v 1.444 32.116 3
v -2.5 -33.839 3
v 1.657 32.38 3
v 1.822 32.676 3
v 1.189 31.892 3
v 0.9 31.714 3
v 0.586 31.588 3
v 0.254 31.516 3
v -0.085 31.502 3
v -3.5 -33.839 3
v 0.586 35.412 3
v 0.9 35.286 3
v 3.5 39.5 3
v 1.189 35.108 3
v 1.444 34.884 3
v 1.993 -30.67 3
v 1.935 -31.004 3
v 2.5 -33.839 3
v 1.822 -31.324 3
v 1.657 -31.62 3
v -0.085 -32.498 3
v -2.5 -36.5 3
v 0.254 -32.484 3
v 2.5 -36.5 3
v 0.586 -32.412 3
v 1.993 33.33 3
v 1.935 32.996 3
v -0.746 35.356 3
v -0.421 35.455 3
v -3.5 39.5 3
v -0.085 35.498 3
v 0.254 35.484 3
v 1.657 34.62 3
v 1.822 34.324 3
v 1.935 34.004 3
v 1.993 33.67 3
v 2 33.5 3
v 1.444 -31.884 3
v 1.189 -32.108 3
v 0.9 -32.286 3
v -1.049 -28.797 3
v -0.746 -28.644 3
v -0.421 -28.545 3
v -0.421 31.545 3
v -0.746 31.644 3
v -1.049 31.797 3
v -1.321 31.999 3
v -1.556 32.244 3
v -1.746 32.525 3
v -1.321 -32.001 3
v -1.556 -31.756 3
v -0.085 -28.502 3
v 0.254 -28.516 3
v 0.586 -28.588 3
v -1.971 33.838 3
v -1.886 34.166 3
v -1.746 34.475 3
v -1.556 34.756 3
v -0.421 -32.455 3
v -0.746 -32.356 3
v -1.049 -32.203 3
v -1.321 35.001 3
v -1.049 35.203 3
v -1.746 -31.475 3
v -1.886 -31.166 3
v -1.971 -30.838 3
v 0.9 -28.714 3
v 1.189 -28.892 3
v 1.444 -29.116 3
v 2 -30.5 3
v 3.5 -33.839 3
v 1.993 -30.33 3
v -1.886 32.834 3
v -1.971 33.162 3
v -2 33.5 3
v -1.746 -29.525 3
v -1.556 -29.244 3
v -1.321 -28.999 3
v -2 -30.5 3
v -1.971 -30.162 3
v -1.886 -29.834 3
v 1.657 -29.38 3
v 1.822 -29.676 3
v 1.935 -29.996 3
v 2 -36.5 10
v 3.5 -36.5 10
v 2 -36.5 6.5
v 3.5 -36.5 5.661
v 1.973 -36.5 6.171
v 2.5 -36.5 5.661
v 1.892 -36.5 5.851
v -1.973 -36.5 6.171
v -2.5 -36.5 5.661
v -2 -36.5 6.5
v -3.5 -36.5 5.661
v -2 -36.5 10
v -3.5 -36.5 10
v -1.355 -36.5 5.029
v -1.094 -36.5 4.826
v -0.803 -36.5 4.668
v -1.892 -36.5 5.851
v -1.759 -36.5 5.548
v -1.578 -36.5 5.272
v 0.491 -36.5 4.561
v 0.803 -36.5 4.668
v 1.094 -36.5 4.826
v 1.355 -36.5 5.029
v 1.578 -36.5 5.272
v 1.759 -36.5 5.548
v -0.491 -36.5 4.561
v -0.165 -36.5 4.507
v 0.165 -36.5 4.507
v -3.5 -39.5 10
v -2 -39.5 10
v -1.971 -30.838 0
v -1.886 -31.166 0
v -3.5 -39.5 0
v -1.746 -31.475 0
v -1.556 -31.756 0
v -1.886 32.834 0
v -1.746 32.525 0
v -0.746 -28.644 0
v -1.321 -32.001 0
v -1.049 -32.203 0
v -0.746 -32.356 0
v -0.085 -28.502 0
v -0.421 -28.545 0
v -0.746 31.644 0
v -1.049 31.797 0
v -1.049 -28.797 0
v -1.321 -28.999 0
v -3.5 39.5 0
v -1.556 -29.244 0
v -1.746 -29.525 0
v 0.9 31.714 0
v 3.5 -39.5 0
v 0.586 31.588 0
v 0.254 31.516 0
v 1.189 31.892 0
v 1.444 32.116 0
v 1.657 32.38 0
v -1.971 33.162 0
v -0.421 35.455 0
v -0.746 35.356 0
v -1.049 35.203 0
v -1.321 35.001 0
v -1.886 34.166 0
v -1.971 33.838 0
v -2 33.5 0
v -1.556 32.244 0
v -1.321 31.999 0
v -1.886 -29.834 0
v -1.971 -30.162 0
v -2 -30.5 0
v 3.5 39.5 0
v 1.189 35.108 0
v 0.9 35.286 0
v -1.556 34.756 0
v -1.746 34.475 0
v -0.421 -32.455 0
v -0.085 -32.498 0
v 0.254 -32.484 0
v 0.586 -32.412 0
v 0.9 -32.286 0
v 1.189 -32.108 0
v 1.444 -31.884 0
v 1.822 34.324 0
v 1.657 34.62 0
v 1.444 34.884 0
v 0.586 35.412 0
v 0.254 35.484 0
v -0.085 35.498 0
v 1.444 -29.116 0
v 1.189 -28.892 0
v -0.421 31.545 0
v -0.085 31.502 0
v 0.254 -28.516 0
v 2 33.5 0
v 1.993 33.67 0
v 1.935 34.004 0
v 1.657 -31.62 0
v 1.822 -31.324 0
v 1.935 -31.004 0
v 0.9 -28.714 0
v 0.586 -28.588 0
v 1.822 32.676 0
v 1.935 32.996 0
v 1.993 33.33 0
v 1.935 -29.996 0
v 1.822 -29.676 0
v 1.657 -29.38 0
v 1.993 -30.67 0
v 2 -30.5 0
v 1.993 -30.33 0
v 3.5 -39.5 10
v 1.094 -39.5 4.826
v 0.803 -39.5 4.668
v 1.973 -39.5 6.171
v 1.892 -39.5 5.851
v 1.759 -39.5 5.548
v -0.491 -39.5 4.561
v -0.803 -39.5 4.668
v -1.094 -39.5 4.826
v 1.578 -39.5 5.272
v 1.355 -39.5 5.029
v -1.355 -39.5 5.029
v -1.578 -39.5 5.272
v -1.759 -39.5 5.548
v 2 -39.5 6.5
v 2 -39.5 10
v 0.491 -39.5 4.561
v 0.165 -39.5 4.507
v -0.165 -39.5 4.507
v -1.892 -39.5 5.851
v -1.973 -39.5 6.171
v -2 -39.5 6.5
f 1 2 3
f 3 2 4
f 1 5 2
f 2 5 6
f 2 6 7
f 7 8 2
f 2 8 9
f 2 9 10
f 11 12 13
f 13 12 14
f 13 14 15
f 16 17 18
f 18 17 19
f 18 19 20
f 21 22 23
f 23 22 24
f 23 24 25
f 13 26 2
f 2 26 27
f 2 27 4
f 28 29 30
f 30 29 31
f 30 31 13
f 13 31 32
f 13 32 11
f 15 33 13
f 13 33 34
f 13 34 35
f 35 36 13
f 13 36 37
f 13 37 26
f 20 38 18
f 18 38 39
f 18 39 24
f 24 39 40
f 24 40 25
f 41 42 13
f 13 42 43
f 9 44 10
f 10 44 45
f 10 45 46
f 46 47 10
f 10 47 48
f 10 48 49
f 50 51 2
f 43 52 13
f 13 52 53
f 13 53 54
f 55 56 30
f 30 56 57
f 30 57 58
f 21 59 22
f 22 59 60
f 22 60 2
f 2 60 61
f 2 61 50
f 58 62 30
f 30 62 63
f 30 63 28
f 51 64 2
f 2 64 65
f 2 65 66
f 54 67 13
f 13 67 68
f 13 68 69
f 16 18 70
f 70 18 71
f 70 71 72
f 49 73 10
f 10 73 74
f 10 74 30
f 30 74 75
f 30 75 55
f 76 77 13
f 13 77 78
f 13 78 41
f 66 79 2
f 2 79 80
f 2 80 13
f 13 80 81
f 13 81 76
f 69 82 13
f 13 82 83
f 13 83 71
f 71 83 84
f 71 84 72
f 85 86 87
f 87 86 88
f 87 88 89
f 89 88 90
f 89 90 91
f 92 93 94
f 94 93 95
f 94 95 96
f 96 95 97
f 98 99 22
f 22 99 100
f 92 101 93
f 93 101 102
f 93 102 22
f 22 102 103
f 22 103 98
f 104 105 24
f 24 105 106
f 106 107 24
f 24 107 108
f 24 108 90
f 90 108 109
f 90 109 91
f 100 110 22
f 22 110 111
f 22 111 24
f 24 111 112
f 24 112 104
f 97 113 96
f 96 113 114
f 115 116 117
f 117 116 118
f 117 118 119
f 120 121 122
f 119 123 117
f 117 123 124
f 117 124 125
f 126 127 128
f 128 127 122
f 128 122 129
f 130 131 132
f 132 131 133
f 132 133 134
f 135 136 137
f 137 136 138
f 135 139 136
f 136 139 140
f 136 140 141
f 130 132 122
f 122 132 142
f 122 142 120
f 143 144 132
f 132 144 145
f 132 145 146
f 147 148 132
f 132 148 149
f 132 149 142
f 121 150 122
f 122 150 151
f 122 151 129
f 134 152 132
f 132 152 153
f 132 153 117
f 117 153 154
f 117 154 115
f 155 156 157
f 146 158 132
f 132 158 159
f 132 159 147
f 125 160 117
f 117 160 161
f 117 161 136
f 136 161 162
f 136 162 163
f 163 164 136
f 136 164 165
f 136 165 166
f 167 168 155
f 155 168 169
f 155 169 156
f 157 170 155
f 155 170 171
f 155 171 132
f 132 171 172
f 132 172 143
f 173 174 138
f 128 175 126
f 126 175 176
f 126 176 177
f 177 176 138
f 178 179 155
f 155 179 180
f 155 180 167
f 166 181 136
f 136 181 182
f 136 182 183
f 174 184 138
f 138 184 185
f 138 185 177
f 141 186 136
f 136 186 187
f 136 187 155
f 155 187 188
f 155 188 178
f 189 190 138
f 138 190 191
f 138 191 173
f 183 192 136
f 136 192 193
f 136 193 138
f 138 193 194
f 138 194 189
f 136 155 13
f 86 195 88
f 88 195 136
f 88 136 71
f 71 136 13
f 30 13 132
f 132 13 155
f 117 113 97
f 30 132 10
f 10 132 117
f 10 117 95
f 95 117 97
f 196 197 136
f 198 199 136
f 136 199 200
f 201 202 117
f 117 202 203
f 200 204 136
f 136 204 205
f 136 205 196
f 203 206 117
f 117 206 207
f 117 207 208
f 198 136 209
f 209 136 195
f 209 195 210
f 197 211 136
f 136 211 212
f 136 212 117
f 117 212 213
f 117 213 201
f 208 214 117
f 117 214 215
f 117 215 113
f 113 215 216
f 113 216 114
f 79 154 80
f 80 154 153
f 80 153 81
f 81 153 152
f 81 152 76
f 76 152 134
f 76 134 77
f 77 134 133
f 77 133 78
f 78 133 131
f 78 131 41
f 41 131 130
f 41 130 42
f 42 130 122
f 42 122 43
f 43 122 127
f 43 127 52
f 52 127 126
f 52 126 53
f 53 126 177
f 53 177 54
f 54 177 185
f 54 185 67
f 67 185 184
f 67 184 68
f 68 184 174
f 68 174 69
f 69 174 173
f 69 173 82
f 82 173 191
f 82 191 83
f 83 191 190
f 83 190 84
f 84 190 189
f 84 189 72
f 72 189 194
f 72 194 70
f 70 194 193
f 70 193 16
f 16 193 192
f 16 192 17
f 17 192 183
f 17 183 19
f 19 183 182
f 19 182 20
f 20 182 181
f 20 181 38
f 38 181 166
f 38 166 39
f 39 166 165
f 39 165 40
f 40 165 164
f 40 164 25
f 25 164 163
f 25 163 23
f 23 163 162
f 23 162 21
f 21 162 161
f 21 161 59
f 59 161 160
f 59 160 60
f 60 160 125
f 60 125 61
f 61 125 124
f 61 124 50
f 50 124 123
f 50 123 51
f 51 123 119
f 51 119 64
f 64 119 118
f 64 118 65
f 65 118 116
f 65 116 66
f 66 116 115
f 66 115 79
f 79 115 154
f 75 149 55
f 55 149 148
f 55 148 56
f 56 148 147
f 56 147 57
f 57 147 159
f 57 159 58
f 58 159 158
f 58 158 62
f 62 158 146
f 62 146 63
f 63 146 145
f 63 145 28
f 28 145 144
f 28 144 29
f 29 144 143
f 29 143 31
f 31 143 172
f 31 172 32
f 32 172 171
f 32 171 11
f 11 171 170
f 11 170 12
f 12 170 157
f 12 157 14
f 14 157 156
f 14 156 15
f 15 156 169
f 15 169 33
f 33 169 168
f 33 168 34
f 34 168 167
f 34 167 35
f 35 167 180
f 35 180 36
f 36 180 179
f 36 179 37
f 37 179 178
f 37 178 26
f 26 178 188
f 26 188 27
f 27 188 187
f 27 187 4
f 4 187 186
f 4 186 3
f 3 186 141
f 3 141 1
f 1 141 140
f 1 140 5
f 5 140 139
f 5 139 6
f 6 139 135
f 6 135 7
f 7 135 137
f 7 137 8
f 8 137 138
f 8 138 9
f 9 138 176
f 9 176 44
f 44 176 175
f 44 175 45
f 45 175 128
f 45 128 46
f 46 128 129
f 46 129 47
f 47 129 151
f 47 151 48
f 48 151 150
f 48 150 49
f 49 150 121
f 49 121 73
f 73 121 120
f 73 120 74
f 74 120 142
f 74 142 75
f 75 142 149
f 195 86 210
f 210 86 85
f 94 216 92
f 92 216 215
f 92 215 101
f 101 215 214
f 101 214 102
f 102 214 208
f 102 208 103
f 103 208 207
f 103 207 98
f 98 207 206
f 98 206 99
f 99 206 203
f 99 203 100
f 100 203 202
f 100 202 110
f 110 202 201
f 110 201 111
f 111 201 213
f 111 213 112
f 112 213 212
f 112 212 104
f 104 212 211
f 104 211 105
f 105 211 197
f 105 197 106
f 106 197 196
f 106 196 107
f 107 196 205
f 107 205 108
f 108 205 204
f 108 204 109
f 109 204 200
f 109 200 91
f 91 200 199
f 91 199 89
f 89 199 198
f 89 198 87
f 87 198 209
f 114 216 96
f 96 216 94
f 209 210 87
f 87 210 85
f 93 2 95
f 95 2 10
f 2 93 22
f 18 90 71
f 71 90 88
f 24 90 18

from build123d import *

# Parameters (mm, degrees)
SKETCH1_W           = 7
SKETCH1_H           = 79
SKETCH1_R           = 2
BOSS_EXTRUDE1_DEPTH = 3
SKETCH2_W           = 7
SKETCH2_H           = 3
BOSS_EXTRUDE2_DEPTH = 7
CUT_EXTRUDE1_REACH  = 81.707
BOSS_EXTRUDE3_DEPTH = 1


with BuildPart() as part:
    # Sketch1 → Boss-Extrude1 (new body)
    with BuildSketch(Plane.XY):
        Rectangle(SKETCH1_W, SKETCH1_H)
        with Locations((0, -30.5)):
            Circle(SKETCH1_R, mode=Mode.SUBTRACT)
        with Locations((0, 33.5)):
            Circle(SKETCH1_R, mode=Mode.SUBTRACT)
    extrude(amount=BOSS_EXTRUDE1_DEPTH)

    # Sketch2 → Boss-Extrude2 (add)
    with BuildSketch(Plane.XY.offset(3)):
        with Locations((0, -38)):
            Rectangle(SKETCH2_W, SKETCH2_H)
    extrude(amount=BOSS_EXTRUDE2_DEPTH)

    # Sketch3 → Cut-Extrude1 (cut, up to next)
    with BuildSketch(Plane.XZ.offset(39.5), mode=Mode.PRIVATE) as cut_extrude1_sk1:
        with BuildLine():
            Line((-2, 6.5), (-2, 10))
            Line((-2, 10), (2, 10))
            Line((2, 10), (2, 6.5))
            ThreePointArc((2, 6.5), (0, 4.5), (-2, 6.5))
        make_face()
    cut_extrude1_tool1 = extrude(cut_extrude1_sk1.sketch, amount=-CUT_EXTRUDE1_REACH, mode=Mode.PRIVATE) & part.part
    add(cut_extrude1_tool1.solids().sort_by_distance((0, -39.5, 7.444953))[0], mode=Mode.SUBTRACT)

    # Sketch4 → Boss-Extrude3 (add)
    with BuildSketch(Plane.ZY.offset(3.5)):
        Polygon((3, -33.839487464), (5.660512536, -36.5), (3, -36.5), align=None)
    boss_extrude3 = extrude(amount=-BOSS_EXTRUDE3_DEPTH)

    # Mirror1: Boss-Extrude3 across plane
    add(boss_extrude3.mirror(Plane.ZY))


solid = part.part
